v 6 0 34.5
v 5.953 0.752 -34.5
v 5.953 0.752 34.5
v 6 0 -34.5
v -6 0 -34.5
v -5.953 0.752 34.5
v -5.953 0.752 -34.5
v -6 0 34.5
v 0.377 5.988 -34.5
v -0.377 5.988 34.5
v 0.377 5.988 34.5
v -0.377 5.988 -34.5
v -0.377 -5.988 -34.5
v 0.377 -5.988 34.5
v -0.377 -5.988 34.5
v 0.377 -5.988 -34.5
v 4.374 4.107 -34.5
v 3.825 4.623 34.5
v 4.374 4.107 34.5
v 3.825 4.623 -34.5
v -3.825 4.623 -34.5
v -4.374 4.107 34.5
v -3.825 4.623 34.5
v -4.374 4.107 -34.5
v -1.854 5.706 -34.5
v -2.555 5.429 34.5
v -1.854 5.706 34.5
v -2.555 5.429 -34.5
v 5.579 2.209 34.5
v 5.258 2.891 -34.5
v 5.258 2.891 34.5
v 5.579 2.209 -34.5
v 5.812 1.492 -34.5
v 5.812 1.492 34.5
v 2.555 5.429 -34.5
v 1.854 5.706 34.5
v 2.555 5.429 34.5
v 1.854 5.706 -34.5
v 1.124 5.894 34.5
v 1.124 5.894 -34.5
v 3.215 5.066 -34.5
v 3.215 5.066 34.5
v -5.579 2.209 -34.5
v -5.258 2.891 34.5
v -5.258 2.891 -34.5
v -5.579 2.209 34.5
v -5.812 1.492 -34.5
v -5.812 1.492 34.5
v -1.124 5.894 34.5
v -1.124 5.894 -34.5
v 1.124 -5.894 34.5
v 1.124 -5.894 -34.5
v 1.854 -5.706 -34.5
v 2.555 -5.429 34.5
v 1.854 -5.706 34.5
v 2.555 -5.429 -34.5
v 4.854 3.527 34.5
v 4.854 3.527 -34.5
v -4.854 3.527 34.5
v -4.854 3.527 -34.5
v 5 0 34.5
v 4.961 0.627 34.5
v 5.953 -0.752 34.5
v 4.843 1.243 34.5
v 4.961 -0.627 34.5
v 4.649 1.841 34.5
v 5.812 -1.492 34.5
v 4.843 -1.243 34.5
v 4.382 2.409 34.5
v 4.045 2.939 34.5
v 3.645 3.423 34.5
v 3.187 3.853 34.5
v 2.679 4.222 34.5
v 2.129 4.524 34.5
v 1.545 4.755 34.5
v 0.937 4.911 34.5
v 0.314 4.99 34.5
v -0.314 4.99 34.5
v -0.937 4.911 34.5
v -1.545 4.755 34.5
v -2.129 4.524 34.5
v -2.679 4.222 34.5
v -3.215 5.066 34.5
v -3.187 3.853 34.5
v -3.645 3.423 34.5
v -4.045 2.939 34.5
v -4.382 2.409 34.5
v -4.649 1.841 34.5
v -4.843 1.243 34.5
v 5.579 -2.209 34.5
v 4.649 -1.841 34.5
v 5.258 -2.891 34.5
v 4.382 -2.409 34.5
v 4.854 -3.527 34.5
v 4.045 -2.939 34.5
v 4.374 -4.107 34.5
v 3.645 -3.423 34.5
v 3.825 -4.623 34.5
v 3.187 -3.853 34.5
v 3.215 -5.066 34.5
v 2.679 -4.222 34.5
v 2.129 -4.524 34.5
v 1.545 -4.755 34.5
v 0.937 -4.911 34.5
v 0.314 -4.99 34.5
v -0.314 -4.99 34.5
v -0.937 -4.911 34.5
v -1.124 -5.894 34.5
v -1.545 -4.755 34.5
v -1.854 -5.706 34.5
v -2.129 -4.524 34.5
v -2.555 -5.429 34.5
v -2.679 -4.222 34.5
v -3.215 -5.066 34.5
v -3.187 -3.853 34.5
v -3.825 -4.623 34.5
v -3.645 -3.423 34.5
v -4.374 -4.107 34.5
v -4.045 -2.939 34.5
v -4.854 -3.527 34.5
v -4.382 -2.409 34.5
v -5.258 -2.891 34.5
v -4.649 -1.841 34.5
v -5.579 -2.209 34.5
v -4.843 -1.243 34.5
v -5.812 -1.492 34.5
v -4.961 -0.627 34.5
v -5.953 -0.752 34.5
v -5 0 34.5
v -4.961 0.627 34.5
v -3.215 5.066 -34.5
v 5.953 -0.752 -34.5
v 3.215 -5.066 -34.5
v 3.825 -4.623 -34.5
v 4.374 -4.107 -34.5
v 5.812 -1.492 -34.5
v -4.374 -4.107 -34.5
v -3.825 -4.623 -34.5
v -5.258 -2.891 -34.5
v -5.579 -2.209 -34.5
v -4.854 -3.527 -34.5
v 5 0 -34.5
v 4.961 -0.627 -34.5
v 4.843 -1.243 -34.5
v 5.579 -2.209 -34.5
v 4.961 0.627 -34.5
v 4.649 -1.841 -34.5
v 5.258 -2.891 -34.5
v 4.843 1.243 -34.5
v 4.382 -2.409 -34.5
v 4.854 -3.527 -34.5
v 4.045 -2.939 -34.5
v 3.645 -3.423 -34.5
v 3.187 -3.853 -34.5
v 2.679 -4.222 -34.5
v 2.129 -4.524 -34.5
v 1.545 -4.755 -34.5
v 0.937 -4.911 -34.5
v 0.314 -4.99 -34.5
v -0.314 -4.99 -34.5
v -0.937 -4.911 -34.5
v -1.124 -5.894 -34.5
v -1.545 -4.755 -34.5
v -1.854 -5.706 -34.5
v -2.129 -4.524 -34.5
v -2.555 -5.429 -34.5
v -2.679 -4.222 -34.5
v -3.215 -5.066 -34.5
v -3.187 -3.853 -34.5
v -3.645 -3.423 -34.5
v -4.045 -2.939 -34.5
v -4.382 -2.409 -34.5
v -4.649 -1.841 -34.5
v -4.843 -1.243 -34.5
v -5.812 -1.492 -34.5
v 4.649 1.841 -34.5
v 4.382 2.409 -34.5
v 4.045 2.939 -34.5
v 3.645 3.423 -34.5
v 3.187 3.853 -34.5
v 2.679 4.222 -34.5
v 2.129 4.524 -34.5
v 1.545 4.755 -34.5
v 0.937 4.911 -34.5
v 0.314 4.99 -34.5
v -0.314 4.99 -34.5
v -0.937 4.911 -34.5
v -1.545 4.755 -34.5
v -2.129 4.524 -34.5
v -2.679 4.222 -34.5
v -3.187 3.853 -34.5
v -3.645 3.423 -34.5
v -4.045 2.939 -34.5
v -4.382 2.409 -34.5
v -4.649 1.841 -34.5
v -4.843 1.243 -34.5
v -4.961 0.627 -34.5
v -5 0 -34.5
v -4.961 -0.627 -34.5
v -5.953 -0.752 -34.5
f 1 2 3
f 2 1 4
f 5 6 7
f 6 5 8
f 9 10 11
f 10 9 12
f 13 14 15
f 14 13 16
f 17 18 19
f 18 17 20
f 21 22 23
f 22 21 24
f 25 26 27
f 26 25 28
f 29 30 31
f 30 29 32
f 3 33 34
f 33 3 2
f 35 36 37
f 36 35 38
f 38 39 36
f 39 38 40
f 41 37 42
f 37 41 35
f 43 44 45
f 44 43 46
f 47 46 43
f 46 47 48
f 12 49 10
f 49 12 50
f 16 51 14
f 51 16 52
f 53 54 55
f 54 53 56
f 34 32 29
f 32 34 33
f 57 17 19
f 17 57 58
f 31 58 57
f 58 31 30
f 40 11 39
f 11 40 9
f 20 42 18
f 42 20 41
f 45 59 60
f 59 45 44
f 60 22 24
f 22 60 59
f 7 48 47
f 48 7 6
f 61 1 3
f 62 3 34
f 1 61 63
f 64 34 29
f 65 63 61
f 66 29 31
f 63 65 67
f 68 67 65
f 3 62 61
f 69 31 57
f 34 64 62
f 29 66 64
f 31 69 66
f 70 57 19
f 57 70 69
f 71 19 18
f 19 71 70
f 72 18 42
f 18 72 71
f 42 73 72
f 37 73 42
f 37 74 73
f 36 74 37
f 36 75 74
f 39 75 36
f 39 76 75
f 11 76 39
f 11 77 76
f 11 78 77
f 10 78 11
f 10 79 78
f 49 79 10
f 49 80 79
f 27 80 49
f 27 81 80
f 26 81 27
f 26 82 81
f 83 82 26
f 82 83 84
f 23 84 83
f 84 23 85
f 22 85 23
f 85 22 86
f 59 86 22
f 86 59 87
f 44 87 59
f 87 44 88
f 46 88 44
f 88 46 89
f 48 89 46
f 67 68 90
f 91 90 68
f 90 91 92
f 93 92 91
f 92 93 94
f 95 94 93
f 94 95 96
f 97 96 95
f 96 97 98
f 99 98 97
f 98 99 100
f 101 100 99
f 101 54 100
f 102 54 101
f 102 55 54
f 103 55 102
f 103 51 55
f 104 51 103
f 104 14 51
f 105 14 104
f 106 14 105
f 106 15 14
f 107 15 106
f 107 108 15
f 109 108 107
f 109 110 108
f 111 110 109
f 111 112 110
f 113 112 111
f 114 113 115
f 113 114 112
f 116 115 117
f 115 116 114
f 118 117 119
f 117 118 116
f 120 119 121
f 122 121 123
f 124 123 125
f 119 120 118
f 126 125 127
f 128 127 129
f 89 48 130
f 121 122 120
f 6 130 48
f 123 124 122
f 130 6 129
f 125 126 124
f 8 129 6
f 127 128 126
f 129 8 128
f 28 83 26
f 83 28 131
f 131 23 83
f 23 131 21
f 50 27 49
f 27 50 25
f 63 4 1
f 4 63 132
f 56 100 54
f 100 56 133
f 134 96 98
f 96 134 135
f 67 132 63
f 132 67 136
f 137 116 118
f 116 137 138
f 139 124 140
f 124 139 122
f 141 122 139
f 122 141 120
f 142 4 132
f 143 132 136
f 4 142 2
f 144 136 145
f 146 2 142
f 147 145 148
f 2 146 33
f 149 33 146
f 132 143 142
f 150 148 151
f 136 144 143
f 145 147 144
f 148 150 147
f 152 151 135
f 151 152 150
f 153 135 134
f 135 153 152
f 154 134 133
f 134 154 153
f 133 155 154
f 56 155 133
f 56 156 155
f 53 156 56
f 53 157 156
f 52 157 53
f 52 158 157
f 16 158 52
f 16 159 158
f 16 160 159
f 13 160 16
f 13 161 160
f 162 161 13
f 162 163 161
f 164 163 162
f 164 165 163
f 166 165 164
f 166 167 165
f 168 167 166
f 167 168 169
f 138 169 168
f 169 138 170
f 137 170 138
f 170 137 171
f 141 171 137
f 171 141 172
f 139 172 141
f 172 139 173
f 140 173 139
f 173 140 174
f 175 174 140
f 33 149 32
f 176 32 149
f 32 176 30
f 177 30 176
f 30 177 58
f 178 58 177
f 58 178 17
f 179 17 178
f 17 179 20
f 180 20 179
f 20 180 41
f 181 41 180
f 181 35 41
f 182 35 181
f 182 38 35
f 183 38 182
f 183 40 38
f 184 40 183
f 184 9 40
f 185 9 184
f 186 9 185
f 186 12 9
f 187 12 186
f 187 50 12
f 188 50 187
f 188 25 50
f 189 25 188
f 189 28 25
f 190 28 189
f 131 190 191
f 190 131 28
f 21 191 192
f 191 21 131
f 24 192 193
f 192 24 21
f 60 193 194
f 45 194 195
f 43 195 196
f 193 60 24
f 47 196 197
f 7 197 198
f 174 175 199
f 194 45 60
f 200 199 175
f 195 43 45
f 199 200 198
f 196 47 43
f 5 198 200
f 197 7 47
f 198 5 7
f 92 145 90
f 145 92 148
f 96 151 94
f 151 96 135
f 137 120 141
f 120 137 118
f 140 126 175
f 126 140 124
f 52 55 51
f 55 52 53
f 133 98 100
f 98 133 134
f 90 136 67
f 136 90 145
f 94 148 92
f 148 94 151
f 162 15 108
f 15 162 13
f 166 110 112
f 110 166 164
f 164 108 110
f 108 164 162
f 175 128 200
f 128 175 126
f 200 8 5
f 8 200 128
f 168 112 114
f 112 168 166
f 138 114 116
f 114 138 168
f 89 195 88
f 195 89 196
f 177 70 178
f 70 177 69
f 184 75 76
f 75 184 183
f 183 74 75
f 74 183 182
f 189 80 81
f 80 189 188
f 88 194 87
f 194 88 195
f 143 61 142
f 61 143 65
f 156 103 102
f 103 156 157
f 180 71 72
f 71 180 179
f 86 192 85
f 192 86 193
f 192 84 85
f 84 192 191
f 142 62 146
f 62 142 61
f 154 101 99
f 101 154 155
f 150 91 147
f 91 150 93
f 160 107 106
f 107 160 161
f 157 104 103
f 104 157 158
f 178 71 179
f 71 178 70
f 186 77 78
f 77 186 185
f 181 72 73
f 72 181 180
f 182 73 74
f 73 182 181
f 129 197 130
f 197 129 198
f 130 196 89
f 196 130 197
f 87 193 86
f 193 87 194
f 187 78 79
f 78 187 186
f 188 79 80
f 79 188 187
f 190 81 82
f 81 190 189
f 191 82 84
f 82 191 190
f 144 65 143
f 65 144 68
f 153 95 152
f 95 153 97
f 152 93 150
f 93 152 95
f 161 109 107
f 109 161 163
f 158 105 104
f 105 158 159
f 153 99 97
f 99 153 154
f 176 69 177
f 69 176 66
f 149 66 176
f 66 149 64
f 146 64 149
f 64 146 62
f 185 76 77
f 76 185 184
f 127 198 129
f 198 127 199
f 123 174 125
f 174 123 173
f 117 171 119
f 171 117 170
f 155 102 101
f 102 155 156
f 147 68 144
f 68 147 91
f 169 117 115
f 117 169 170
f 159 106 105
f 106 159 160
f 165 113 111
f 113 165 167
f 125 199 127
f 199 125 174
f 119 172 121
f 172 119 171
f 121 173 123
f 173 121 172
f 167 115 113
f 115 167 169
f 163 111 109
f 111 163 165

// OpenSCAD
$fn = 50;


difference() {
	union() {
		translate(v = [0, 0, -34.5000000000]) {
			cylinder(h = 69, r = 6.0000000000);
		}
	}
	union() {
		translate(v = [0, 0, -100.0000000000]) {
			cylinder(h = 200, r = 5);
		}
	}
}
